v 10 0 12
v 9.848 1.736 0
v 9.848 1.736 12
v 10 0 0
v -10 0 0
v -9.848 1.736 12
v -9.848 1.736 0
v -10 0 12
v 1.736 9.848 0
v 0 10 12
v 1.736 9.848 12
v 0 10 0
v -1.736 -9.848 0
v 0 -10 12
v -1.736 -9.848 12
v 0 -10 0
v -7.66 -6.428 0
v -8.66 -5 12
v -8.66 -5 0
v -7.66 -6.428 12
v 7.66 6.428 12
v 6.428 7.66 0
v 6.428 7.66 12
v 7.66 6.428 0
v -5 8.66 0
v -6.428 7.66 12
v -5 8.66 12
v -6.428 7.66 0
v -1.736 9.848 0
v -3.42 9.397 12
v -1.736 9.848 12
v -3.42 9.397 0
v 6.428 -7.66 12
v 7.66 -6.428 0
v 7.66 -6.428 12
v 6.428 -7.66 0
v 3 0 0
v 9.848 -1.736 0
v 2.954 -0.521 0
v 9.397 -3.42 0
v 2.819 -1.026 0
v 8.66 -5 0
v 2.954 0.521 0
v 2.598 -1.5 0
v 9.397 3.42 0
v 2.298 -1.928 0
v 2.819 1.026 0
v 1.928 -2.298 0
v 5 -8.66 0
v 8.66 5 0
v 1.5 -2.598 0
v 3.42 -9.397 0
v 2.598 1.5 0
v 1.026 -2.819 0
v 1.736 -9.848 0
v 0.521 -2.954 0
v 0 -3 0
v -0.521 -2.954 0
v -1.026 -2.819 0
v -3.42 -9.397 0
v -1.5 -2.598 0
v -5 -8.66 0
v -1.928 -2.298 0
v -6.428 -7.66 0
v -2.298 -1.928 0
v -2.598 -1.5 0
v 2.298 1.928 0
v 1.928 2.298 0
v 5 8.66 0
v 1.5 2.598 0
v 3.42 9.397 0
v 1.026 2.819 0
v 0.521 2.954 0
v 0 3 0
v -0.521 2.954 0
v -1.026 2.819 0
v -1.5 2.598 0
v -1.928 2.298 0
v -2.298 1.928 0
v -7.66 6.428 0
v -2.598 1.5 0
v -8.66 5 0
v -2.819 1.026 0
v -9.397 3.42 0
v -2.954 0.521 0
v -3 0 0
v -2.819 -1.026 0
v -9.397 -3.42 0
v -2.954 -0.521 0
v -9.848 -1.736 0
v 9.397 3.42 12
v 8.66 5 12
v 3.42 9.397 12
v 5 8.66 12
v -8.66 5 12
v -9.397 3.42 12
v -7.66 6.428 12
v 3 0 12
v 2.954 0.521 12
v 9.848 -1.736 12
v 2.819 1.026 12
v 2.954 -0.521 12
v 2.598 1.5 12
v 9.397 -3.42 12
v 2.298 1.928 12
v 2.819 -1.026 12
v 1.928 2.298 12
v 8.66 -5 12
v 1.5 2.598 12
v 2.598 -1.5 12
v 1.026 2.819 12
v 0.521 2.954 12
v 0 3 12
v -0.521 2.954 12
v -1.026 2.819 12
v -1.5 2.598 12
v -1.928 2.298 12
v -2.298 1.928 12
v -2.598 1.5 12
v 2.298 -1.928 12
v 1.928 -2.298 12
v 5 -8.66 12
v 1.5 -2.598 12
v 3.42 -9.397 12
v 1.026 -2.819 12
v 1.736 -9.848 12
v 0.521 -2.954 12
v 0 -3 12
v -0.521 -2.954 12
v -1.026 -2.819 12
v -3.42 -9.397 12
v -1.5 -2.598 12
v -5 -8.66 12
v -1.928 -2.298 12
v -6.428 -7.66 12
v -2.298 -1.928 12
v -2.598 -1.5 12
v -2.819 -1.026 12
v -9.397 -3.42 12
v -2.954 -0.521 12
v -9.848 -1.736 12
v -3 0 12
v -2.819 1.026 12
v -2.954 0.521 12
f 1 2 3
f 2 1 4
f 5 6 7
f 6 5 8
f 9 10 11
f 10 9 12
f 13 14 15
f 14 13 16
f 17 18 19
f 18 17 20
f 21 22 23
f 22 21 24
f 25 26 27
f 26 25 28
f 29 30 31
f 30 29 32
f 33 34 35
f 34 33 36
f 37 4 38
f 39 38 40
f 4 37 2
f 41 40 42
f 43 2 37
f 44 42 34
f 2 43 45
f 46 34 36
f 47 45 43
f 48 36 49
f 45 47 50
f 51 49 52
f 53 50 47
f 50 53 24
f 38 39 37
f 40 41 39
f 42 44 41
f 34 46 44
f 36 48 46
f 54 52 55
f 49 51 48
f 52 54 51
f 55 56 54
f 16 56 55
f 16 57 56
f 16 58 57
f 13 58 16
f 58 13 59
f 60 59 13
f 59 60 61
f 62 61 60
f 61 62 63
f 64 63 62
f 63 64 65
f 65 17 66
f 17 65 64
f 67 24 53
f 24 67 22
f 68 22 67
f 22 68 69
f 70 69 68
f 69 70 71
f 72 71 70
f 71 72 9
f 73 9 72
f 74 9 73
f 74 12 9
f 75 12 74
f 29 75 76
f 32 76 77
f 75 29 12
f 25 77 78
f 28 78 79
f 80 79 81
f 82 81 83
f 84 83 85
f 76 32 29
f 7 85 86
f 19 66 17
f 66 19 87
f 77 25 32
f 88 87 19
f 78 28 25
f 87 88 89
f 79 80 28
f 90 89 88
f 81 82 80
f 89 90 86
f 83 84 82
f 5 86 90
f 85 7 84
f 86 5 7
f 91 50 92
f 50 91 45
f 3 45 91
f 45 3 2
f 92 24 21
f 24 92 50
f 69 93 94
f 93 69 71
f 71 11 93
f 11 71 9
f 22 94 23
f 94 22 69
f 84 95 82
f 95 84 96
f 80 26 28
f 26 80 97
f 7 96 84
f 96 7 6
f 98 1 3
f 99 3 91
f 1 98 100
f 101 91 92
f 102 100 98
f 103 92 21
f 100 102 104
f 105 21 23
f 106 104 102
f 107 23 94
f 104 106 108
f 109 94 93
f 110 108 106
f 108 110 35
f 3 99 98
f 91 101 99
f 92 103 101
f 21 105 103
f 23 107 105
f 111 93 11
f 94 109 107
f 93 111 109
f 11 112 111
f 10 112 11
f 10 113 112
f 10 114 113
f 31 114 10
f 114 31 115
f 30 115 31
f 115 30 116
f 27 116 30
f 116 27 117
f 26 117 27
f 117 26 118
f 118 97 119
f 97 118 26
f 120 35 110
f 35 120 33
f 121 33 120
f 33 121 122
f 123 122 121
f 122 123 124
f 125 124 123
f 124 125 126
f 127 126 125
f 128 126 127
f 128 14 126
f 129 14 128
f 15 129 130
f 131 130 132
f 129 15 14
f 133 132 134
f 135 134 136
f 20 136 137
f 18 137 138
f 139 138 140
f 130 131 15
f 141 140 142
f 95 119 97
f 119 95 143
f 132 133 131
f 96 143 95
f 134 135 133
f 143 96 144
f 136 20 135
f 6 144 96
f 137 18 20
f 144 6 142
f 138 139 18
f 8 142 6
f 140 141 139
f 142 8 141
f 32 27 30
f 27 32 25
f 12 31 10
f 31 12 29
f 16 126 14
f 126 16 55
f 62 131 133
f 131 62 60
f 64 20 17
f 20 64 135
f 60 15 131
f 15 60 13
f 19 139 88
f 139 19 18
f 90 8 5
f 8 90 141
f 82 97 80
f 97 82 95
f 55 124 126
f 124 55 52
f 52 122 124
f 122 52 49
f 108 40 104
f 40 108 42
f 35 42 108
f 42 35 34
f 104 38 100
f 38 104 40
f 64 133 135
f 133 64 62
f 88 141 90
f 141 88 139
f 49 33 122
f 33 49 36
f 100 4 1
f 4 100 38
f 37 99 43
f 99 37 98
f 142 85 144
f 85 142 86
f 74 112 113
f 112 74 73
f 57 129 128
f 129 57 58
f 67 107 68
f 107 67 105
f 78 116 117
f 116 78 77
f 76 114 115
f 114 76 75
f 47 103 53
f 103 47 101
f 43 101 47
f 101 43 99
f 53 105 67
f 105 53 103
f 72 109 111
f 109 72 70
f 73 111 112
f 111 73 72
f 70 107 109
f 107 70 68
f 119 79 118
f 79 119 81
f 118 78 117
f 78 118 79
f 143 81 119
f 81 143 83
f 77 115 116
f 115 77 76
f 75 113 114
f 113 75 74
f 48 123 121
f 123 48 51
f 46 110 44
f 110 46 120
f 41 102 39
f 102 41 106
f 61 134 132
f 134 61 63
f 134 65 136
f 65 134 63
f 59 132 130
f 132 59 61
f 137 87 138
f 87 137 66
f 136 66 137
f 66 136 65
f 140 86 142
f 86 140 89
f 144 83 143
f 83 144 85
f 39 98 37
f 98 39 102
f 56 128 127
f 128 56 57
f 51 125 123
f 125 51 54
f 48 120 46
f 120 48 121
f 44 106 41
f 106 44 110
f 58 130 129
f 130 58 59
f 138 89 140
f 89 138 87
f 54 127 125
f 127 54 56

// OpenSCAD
// Parameters
height = 12;
outer_diameter = 20;
hole_diameter = 6;
resolution = 36;

// Cylinder
difference() {
  cylinder(h = height, r = outer_diameter / 2, $fn = resolution);
  cylinder(h = height + 0.1, r = hole_diameter / 2, $fn = resolution);
}
